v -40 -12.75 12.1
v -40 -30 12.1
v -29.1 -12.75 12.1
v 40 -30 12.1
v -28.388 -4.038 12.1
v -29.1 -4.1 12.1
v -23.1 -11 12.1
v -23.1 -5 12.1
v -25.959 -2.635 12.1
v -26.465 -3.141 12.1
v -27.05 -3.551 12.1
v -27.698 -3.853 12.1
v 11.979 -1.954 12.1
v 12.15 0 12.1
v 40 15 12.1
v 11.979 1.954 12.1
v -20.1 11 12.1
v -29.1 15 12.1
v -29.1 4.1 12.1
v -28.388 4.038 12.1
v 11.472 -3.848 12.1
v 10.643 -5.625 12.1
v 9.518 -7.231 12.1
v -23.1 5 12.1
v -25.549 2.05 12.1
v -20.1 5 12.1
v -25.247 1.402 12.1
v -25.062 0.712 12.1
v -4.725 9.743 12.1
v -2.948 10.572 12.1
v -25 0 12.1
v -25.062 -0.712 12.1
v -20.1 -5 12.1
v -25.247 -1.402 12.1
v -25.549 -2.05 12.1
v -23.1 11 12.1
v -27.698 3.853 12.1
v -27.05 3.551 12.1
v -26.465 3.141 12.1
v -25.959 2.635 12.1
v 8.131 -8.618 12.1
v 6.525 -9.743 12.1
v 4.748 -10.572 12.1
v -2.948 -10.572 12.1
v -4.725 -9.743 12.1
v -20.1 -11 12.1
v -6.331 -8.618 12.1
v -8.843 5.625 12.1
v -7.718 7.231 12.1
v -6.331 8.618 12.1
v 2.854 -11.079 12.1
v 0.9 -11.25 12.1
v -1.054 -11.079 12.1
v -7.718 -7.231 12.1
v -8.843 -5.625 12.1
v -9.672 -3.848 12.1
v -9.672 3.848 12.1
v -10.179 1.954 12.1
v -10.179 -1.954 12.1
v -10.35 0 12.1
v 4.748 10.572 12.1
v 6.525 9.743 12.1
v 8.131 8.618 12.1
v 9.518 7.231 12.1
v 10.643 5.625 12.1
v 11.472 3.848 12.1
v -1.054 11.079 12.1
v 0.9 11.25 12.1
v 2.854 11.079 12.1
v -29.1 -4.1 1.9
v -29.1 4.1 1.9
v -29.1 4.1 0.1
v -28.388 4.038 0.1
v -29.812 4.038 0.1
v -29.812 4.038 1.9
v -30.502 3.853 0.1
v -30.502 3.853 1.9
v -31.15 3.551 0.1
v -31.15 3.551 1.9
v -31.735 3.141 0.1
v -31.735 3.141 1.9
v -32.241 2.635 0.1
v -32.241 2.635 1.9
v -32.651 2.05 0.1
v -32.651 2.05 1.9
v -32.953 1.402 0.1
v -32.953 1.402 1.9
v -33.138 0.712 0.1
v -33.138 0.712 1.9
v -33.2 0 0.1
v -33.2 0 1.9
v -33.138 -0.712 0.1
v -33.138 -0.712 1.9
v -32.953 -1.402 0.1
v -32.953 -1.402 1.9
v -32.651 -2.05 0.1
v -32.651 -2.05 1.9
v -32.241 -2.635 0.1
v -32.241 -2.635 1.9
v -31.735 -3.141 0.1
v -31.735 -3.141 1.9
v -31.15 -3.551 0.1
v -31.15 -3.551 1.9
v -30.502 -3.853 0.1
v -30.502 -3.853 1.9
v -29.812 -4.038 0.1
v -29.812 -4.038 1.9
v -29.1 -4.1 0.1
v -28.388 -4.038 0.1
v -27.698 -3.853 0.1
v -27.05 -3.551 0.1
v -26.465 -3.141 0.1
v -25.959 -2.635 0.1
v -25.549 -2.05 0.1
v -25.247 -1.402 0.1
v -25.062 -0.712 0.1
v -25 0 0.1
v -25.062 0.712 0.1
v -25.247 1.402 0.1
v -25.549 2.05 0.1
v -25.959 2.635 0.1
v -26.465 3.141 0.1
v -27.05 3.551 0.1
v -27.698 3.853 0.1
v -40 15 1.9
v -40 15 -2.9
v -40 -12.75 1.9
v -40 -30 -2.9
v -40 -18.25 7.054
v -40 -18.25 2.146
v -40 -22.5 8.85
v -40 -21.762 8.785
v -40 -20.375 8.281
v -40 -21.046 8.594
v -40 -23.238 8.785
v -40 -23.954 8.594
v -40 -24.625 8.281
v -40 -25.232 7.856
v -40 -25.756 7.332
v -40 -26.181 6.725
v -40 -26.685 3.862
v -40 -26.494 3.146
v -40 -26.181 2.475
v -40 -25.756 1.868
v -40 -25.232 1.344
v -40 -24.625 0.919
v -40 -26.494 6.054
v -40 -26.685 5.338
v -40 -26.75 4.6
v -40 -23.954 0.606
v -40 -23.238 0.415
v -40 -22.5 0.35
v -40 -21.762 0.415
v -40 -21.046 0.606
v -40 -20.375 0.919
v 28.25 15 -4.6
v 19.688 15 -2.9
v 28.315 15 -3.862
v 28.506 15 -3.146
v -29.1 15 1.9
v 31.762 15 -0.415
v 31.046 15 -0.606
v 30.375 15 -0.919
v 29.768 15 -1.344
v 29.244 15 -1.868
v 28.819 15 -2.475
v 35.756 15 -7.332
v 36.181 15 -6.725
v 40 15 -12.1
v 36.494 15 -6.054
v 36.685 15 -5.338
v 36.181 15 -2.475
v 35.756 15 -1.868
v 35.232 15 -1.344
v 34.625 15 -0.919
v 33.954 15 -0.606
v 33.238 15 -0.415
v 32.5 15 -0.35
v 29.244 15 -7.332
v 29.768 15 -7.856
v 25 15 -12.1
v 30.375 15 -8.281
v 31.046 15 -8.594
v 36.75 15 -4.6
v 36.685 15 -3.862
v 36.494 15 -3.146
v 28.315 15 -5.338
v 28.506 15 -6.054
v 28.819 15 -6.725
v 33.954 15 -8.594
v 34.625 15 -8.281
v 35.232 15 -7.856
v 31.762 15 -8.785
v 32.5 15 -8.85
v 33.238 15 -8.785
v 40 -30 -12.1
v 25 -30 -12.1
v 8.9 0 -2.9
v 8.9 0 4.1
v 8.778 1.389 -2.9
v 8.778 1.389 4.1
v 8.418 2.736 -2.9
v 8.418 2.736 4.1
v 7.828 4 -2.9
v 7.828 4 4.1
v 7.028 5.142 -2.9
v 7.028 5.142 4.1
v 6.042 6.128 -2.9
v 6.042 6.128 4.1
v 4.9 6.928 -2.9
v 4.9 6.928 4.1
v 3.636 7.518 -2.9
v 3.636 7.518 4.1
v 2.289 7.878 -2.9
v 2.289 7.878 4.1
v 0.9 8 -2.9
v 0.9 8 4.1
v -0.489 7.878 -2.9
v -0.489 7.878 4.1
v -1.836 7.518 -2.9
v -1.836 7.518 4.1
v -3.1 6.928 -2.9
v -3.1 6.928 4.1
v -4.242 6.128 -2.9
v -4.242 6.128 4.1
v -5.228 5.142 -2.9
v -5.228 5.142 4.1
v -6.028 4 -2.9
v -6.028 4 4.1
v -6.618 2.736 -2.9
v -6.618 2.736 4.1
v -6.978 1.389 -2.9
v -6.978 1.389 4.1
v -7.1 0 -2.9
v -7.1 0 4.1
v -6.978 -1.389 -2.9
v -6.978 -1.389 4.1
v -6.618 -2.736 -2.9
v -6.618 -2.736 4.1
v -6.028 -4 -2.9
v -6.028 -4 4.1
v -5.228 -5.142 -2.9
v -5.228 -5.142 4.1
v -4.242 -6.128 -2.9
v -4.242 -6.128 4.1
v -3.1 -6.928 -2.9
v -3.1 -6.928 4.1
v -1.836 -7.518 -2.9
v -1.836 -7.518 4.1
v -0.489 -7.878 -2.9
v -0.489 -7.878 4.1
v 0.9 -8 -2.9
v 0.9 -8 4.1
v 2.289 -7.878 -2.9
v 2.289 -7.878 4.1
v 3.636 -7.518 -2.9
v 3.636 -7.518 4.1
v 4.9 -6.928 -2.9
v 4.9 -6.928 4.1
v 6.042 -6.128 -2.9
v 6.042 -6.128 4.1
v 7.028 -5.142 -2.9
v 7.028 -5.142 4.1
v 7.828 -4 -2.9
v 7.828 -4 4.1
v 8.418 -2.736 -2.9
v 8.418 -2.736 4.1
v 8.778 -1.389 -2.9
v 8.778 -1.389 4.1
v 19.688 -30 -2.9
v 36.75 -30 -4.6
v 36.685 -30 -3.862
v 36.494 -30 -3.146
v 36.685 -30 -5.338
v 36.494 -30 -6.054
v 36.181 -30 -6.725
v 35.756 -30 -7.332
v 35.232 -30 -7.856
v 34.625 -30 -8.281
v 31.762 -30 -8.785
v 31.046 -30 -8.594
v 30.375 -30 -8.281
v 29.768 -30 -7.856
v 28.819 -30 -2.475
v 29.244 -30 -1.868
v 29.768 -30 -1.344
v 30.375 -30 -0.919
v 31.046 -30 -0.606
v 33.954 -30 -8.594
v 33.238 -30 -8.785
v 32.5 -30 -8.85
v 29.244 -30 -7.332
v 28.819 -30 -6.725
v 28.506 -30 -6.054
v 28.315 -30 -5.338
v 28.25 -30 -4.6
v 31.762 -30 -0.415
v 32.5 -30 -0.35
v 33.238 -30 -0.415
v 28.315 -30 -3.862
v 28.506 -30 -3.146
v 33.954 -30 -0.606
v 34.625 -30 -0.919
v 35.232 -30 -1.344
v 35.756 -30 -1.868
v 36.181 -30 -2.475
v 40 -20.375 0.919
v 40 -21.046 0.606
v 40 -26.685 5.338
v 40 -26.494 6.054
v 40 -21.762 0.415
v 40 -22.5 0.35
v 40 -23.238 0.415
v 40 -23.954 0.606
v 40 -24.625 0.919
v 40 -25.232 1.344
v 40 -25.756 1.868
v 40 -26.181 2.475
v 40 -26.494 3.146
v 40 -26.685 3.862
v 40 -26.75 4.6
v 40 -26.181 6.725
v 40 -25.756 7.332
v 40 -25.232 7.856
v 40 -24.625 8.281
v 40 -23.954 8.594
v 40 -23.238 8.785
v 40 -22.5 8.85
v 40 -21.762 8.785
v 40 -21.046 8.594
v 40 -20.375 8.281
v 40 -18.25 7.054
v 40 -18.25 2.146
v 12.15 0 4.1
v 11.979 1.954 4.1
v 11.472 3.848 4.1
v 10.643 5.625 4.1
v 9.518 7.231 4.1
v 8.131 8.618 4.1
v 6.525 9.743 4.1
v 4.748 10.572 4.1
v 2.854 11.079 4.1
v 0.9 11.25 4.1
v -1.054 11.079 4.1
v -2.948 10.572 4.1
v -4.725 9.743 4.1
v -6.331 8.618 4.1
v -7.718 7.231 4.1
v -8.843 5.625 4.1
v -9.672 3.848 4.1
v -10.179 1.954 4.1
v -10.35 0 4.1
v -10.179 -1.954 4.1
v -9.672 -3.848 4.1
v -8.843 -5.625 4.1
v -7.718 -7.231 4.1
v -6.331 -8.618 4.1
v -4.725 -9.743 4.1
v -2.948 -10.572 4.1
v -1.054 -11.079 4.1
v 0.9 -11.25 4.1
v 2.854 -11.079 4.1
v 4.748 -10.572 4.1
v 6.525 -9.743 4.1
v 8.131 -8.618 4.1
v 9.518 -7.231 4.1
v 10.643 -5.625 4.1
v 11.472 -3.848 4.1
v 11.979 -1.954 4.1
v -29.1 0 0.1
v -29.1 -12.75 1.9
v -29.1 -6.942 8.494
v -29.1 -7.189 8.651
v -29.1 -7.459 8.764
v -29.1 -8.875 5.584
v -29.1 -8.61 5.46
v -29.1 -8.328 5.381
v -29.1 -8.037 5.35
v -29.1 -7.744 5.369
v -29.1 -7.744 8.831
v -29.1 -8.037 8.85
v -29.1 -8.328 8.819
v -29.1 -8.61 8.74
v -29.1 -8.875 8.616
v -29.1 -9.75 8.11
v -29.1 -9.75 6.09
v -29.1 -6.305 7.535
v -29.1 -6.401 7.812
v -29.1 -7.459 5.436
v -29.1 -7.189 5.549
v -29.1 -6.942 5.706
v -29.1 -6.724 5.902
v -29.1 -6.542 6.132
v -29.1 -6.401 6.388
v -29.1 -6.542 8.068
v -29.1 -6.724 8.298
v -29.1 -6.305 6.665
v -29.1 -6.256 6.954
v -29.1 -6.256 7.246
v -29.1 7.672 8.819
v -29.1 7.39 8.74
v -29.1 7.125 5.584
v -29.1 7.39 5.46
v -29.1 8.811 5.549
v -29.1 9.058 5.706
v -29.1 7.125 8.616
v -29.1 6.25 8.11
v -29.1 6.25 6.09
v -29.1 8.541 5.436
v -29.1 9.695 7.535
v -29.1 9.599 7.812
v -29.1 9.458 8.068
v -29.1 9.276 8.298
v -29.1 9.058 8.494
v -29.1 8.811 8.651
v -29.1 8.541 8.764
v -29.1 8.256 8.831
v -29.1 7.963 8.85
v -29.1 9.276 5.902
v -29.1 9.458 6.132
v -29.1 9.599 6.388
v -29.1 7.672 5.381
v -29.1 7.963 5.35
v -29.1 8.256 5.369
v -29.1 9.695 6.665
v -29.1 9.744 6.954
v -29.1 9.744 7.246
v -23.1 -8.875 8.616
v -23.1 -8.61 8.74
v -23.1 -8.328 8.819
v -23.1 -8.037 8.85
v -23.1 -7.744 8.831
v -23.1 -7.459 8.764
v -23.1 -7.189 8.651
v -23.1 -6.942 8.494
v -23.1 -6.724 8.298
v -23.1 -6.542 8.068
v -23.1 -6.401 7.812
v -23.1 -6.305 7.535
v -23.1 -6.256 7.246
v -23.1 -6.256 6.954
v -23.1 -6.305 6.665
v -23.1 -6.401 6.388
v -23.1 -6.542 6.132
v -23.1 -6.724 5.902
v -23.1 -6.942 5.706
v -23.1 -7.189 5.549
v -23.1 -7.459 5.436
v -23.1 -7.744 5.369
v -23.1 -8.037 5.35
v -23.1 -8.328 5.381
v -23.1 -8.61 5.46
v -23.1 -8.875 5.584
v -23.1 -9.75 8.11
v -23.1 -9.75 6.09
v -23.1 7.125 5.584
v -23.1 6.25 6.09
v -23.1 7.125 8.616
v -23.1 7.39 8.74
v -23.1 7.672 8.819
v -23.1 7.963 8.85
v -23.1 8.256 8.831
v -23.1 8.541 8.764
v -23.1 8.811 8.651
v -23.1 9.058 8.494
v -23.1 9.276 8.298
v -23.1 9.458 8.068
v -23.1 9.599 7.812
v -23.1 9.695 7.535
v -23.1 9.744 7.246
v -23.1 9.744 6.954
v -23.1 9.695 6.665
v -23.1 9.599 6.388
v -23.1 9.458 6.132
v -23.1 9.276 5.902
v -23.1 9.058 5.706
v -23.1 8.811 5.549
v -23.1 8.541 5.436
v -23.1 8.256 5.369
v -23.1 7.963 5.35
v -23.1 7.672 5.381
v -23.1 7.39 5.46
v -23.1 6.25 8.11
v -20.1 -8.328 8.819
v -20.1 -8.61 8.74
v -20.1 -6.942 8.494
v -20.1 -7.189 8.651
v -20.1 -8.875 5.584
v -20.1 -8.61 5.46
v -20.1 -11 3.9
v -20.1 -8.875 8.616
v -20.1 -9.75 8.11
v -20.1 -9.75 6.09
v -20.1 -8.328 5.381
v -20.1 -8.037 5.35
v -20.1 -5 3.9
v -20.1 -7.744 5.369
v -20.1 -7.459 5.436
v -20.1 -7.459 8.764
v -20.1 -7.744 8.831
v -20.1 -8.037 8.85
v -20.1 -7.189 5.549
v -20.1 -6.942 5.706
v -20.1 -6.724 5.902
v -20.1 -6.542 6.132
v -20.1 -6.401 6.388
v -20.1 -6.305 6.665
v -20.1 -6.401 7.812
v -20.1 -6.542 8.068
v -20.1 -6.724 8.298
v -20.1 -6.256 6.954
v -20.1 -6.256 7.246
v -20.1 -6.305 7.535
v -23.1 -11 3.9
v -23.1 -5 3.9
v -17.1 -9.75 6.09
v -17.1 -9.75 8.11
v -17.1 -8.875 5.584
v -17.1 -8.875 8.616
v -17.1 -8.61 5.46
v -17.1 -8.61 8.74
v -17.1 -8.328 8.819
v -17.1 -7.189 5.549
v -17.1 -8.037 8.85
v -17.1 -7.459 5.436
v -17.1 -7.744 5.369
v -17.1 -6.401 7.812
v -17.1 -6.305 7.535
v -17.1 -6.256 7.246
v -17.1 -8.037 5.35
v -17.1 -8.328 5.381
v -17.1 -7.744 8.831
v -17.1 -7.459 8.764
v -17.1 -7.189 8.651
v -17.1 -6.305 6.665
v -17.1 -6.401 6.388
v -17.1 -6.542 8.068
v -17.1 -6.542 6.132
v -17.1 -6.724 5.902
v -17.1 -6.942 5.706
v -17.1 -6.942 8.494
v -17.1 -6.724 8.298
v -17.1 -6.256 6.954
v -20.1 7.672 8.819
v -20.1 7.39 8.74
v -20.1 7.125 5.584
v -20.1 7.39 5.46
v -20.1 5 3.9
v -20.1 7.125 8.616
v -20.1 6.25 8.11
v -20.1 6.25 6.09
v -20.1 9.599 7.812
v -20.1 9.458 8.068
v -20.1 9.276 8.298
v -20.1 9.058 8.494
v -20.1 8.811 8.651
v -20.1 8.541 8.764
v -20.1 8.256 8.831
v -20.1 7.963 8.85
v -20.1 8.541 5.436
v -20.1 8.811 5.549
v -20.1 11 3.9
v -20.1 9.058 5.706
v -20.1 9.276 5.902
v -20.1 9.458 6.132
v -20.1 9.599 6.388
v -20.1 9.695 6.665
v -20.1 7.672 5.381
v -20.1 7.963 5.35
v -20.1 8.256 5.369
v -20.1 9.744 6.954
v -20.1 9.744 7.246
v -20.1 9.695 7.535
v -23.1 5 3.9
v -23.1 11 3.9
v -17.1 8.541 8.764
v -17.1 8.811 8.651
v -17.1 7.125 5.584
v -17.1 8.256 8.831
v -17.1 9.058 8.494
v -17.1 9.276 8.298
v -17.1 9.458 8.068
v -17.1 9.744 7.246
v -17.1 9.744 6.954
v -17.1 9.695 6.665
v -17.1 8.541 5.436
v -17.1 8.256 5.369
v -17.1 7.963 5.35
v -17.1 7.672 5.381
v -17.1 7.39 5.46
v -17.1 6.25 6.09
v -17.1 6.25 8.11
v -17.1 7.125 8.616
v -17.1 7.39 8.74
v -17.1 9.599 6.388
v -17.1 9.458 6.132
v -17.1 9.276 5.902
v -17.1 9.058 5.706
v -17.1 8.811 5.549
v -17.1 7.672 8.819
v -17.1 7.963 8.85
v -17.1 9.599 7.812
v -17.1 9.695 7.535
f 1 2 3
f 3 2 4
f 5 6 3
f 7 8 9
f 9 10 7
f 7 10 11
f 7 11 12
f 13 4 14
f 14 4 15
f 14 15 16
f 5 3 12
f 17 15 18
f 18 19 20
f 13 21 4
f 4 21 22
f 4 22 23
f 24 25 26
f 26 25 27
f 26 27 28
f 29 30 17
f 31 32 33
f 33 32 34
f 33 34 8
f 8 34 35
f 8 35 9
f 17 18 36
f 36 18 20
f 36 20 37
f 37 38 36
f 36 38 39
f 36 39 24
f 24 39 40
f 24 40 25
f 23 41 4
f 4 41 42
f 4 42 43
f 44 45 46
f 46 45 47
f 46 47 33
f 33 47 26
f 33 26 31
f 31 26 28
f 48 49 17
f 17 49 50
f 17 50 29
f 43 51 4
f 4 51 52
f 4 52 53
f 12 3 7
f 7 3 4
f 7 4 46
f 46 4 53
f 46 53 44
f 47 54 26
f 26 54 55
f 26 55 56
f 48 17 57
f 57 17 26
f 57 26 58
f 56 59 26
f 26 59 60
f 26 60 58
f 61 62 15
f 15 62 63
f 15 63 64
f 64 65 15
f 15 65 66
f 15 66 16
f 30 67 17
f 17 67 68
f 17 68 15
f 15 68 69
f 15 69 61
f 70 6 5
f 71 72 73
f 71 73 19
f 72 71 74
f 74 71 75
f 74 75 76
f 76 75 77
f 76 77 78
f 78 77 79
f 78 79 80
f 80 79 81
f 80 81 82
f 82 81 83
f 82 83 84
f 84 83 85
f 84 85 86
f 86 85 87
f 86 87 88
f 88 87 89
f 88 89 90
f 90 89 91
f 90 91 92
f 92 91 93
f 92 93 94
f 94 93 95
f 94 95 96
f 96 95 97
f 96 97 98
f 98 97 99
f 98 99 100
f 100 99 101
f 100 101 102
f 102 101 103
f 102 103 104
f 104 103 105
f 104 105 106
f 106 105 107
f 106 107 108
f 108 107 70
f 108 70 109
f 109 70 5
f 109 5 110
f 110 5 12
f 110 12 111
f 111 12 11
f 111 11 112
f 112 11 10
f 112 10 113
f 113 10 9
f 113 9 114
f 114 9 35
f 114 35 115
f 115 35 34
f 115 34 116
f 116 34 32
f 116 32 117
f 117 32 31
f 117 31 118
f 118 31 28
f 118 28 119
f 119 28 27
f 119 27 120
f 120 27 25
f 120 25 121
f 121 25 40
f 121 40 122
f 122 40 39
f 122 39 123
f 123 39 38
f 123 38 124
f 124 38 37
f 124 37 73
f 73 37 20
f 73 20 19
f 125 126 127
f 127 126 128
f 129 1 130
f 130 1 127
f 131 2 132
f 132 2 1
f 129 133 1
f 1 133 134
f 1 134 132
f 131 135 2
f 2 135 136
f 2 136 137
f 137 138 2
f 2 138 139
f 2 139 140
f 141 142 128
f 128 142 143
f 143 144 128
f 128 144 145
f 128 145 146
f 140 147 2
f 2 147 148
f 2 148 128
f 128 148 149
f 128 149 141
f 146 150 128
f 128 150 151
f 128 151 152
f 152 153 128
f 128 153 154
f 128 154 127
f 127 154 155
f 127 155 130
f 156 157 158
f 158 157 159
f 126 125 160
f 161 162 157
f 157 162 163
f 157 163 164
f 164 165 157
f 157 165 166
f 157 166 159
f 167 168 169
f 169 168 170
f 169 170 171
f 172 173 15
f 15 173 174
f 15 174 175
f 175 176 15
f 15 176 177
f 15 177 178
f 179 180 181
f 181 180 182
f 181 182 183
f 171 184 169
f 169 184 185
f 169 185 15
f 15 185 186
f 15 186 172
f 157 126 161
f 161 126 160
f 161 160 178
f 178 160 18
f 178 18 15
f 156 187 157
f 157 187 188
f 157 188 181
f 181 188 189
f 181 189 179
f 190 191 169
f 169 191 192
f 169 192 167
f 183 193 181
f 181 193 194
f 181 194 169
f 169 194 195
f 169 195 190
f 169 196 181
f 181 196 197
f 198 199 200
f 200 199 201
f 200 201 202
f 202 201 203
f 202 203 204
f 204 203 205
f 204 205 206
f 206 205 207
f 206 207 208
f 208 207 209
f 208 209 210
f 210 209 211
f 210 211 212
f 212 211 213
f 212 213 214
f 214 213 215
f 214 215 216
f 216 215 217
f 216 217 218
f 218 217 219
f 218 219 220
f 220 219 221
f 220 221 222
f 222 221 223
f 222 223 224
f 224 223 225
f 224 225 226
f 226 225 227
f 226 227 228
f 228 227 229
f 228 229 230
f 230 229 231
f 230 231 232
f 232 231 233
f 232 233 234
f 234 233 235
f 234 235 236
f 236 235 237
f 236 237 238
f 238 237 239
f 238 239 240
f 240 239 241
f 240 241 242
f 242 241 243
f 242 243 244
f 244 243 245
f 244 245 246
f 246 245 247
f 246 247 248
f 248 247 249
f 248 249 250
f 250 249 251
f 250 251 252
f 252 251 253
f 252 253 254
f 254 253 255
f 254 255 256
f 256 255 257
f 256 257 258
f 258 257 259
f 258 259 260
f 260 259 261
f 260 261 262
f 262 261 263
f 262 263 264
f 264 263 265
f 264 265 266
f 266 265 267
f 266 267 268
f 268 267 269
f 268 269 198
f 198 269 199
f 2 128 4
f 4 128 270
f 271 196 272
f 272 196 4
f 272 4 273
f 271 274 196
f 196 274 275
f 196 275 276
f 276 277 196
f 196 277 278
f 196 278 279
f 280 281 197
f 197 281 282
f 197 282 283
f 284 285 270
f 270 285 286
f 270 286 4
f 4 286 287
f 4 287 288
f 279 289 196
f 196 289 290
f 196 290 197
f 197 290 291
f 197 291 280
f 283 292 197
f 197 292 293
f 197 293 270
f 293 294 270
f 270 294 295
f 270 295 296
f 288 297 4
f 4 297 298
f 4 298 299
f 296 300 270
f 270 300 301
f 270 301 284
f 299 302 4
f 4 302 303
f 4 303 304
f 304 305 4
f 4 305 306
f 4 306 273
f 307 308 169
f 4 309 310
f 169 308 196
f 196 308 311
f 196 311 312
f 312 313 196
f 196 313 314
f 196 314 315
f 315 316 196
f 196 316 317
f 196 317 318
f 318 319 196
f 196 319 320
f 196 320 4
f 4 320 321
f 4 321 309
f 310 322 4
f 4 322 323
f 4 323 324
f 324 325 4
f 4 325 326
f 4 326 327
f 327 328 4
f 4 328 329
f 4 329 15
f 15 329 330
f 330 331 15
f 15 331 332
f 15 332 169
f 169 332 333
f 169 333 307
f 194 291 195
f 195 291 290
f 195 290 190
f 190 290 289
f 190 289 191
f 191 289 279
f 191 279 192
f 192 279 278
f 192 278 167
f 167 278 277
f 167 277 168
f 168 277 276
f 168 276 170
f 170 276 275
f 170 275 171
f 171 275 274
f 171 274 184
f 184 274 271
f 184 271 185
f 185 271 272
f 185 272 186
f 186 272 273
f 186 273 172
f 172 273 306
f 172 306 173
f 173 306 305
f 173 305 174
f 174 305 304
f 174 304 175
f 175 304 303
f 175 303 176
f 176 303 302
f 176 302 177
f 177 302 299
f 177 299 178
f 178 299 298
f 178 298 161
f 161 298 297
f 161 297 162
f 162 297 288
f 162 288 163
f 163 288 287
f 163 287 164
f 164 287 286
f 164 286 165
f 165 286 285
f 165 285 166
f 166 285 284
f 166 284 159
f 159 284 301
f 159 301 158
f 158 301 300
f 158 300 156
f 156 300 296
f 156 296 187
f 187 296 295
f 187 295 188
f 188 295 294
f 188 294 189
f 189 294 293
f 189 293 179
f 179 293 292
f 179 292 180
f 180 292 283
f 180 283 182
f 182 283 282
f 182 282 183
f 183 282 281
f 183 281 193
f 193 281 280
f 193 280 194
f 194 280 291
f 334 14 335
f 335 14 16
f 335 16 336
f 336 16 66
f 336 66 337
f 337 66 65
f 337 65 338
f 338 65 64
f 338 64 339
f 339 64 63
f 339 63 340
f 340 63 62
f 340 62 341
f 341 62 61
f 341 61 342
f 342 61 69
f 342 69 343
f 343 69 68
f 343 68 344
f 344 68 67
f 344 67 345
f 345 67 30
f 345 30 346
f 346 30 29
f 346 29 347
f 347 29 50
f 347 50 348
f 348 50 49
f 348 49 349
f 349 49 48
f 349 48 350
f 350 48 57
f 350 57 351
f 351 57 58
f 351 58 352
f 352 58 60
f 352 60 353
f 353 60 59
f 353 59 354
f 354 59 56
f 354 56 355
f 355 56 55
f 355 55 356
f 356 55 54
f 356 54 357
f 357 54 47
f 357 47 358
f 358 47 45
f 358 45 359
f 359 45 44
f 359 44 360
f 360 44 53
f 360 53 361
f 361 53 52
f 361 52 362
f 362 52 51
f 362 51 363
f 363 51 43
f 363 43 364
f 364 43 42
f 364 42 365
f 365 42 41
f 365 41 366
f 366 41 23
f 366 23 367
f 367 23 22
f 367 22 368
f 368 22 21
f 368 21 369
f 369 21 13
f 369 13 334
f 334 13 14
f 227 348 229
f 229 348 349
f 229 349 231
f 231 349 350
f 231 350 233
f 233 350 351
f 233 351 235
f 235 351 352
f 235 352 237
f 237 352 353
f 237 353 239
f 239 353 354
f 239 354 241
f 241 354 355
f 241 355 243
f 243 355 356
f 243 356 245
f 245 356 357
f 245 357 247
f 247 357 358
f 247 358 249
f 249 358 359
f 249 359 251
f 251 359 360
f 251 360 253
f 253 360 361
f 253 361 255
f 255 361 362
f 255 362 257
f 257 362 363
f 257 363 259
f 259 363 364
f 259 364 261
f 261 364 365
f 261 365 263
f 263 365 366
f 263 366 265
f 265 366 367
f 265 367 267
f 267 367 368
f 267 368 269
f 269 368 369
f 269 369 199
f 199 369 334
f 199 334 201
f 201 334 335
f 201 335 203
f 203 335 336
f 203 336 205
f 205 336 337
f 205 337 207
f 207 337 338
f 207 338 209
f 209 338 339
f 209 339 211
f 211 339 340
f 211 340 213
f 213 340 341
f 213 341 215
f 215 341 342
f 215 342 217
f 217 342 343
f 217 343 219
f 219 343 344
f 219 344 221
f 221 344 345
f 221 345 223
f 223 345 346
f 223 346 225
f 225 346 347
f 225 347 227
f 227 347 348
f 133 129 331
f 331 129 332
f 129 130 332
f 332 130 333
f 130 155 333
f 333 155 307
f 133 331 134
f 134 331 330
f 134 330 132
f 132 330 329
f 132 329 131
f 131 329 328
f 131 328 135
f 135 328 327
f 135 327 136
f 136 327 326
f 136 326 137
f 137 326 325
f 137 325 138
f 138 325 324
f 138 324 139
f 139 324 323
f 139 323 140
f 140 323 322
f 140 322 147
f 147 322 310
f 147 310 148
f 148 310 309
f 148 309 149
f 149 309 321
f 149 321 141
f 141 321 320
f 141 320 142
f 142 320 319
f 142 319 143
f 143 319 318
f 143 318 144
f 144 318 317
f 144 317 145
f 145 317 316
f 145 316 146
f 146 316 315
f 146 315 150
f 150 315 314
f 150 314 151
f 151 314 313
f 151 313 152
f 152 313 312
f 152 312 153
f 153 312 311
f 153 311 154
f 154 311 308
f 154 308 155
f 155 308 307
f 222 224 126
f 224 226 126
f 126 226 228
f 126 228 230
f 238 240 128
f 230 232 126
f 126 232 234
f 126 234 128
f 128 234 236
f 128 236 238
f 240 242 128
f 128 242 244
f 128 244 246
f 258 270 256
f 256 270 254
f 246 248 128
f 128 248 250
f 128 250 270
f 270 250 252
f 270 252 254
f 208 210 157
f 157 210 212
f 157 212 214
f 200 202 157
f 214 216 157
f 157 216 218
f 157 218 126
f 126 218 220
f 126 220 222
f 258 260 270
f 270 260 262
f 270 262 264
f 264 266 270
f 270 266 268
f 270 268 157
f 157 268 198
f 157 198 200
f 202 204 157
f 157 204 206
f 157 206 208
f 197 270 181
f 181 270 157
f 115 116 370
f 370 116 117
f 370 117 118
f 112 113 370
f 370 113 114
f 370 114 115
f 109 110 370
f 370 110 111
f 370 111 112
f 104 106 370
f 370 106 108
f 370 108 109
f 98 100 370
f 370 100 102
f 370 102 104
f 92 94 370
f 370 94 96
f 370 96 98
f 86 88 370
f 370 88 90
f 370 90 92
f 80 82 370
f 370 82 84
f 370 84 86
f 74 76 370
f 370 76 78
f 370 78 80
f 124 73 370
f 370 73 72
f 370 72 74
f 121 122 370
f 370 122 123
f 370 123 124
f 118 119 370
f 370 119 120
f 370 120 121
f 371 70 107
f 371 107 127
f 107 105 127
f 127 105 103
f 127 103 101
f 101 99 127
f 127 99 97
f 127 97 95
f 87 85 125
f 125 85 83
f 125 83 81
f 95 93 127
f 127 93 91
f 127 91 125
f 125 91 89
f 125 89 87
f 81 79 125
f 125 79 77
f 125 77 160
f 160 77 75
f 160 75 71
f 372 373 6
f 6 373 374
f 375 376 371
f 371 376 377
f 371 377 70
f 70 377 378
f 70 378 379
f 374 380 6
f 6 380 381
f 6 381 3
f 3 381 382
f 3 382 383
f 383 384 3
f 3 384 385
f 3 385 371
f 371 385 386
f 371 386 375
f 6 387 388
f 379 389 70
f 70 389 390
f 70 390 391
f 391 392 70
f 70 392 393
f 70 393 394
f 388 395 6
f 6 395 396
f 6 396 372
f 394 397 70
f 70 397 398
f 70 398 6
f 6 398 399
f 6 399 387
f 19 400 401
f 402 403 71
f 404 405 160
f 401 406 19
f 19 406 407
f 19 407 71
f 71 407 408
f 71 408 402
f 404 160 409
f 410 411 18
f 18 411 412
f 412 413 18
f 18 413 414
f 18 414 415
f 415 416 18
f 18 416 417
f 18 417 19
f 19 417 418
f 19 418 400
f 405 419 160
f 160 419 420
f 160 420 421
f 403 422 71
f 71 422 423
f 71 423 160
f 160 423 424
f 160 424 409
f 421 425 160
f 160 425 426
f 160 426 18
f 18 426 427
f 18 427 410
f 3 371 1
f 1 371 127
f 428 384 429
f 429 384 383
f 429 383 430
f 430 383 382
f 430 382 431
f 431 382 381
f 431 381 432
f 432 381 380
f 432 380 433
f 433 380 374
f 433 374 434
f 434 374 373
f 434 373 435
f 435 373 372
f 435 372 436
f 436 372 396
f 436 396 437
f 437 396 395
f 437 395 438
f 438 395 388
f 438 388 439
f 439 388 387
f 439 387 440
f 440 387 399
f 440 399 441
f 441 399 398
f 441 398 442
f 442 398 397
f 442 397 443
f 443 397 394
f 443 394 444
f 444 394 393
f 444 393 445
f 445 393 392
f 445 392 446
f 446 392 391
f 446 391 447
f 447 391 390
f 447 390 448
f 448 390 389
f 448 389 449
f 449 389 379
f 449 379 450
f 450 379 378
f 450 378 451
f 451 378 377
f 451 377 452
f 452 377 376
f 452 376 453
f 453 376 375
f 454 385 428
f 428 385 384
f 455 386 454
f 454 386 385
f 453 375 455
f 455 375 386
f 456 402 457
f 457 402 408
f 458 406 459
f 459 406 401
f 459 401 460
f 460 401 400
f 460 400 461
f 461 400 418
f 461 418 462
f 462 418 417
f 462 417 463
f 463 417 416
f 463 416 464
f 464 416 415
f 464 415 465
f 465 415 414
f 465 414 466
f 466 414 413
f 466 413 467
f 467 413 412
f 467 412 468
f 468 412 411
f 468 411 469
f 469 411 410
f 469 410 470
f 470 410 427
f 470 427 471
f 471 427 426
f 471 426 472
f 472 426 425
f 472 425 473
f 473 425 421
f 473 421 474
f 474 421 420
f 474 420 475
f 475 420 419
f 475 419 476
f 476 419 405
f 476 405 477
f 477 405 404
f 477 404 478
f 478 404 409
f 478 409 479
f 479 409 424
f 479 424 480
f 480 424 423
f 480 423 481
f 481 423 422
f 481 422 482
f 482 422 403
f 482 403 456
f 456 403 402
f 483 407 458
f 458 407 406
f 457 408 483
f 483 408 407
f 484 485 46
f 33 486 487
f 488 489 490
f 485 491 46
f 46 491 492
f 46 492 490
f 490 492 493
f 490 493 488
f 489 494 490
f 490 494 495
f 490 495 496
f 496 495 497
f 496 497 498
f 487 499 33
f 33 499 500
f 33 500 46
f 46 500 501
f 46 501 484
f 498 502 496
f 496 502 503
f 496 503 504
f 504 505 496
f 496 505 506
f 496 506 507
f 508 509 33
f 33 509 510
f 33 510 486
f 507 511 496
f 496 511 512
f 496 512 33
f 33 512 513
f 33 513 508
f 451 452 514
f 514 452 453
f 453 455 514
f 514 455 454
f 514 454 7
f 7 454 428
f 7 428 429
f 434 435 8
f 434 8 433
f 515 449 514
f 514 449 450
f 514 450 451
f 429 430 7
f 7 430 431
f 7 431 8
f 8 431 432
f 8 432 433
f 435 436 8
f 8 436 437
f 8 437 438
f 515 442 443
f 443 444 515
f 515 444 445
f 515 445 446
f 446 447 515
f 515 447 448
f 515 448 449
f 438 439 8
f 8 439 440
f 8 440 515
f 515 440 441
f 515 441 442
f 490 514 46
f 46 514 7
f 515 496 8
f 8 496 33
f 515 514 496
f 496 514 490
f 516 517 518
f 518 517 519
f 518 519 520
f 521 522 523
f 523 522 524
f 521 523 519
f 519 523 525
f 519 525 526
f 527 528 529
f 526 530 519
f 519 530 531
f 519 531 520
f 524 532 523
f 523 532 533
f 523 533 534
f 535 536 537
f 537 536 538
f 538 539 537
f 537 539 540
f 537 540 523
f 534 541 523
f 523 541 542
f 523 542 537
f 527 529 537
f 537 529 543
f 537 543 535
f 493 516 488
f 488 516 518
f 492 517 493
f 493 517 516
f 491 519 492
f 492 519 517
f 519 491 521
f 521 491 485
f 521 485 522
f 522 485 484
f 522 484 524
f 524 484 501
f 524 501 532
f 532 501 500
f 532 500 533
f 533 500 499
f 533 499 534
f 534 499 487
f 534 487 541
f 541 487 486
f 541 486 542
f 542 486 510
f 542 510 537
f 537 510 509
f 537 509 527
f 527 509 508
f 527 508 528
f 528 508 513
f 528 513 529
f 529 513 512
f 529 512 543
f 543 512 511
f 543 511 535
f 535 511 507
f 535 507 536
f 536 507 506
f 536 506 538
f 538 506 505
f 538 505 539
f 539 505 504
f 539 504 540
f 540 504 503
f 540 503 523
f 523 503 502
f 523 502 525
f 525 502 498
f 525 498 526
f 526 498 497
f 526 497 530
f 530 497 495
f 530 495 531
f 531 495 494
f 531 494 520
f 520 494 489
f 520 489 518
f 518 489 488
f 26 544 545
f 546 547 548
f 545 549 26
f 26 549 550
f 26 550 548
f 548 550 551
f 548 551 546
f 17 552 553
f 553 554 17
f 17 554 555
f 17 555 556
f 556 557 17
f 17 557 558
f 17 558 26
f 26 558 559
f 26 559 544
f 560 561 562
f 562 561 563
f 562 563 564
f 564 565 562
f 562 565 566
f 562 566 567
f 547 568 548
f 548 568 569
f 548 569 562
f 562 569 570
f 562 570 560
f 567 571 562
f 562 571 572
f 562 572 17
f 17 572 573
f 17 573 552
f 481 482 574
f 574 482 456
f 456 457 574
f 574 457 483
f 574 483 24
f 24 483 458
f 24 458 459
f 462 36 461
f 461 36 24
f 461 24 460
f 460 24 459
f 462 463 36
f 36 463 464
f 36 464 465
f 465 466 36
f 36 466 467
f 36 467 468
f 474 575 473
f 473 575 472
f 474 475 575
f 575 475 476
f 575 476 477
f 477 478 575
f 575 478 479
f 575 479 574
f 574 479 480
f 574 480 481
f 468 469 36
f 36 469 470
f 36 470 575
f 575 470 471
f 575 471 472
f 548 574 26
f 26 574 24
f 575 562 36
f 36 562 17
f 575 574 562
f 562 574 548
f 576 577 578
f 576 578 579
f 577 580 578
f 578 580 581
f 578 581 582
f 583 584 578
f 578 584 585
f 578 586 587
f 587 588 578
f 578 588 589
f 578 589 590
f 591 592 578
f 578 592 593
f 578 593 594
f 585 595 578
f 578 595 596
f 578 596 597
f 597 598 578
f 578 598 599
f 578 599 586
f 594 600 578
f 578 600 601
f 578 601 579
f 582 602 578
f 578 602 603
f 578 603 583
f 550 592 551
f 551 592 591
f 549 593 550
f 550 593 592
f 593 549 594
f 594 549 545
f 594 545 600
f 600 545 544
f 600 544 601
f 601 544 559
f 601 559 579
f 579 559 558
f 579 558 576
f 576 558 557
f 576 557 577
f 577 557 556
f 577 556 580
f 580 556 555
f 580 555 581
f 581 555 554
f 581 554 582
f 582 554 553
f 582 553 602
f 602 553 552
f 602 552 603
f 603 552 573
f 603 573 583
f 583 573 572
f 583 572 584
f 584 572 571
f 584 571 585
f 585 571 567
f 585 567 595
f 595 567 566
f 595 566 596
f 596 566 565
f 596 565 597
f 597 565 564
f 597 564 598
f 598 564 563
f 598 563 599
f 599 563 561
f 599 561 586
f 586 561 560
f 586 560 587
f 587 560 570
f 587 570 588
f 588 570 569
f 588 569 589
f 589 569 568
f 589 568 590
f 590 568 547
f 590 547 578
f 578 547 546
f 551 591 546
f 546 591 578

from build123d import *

# Parameters (mm, degrees)
SCHIZZO2_W                   = 80
SCHIZZO2_H                   = 30
ESTRUSIONE_ESTRUSIONE1_DEPTH = 12.1
SCHIZZO3_R                   = 4.25
TAGLIO_ESTRUSIONE1_DEPTH     = 52.443269725
SCHIZZO4_R                   = 11.25
TAGLIO_ESTRUSIONE2_DEPTH     = 8
SCHIZZO5_R                   = 8
TAGLIO_ESTRUSIONE3_DEPTH     = 46.688510591
ESTRUSIONE_ESTRUSIONE2_START = -15
SCHIZZO6_W                   = 80
SCHIZZO6_H                   = 24.2
SCHIZZO6_R                   = 4.25
ESTRUSIONE_ESTRUSIONE2_DEPTH = 15
TAGLIO_ESTRUSIONE4_DEPTH     = 87.292583691
TAGLIO_ESTRUSIONE5_DEPTH     = 62.411806682
SCHIZZO8_R                   = 4.1
TAGLIO_ESTRUSIONE6_DEPTH     = 12
SCHIZZO10_W                  = 10.2
SCHIZZO10_H                  = 27.75
TAGLIO_ESTRUSIONE7_DEPTH     = 10.9
TAGLIO_ESTRUSIONE8_DEPTH     = 12
SCHIZZO12_W                  = 3
SCHIZZO12_H                  = 6
TAGLIO_ESTRUSIONE9_DEPTH     = 8.2


with BuildPart() as part:
    # Schizzo2 → Estrusione-Estrusione1 (new, symmetric)
    with BuildSketch(Plane.XY):
        Rectangle(SCHIZZO2_W, SCHIZZO2_H)
    extrude(amount=ESTRUSIONE_ESTRUSIONE1_DEPTH, both=True)

    # Schizzo3 → Taglio-Estrusione1 (cut, through all)
    with BuildSketch(Plane.XZ.offset(15)):
        with Locations(Location((32.5, -4.6, 0), (0, 0, 270))):
            Circle(SCHIZZO3_R)
    extrude(amount=-TAGLIO_ESTRUSIONE1_DEPTH, mode=Mode.SUBTRACT)

    # Schizzo4 → Taglio-Estrusione2 (cut)
    with BuildSketch(Plane.XY.offset(12.1)):
        with Locations((0.9, 0)):
            Circle(SCHIZZO4_R)
    extrude(amount=-TAGLIO_ESTRUSIONE2_DEPTH, mode=Mode.SUBTRACT)

    # Schizzo5 → Taglio-Estrusione3 (cut, through all)
    with BuildSketch(Plane.XY.offset(4.1)):
        with Locations((0.9, 0)):
            Circle(SCHIZZO5_R)
    extrude(amount=-TAGLIO_ESTRUSIONE3_DEPTH, mode=Mode.SUBTRACT)

    # Schizzo6 → Estrusione-Estrusione2 (add)
    with BuildSketch(Plane(origin=(0, -15, 0), x_dir=(1, 0, 0), z_dir=(0, 1, 0)).offset(ESTRUSIONE_ESTRUSIONE2_START)):
        Rectangle(SCHIZZO6_W, SCHIZZO6_H)
        with Locations(Location((32.5, 4.6, 0), (0, 0, 90))):
            Circle(SCHIZZO6_R, mode=Mode.SUBTRACT)
    extrude(amount=ESTRUSIONE_ESTRUSIONE2_DEPTH)

    # Schizzo7 → Taglio-Estrusione4 (cut, through all)
    with BuildSketch(Plane(origin=(40, 0, 0), x_dir=(0, 0, -1), z_dir=(1, 0, 0))):
        with BuildLine():
            Line((-2.146261356, -18.25), (-7.053738644, -18.25))
            Line((-7.053738644, -18.25), (-8.280607966, -20.375))
            ThreePointArc((-8.280607966, -20.375), (-4.6, -26.75), (-0.919392034, -20.375))
            Line((-0.919392034, -20.375), (-2.146261356, -18.25))
        make_face()
    extrude(amount=-TAGLIO_ESTRUSIONE4_DEPTH, mode=Mode.SUBTRACT)

    # Schizzo9 → Taglio-Estrusione5 (cut, through all)
    with BuildSketch(Plane.XZ.offset(-15)):
        Polygon((25, -12.1), (19.688377523, -2.9), (-40, -2.9), (-40, -12.1), align=None)
    extrude(amount=TAGLIO_ESTRUSIONE5_DEPTH, mode=Mode.SUBTRACT)

    # Schizzo8 → Taglio-Estrusione6 (cut)
    with BuildSketch(Plane.XY.offset(12.1)):
        with Locations((-29.1, 0)):
            Circle(SCHIZZO8_R)
    extrude(amount=-TAGLIO_ESTRUSIONE6_DEPTH, mode=Mode.SUBTRACT)

    # Schizzo10 → Taglio-Estrusione7 (cut)
    with BuildSketch(Plane.ZY.offset(40)):
        with Locations((7, 1.125)):
            Rectangle(SCHIZZO10_W, SCHIZZO10_H)
    extrude(amount=-TAGLIO_ESTRUSIONE7_DEPTH, mode=Mode.SUBTRACT)

    # Schizzo11 → Taglio-Estrusione8 (cut)
    with BuildSketch(Plane.ZY.offset(29.1)):
        with BuildLine():
            Line((8.110362971, 6.25), (6.089637029, 6.25))
            Line((6.089637029, 6.25), (5.584455543, 7.125))
            ThreePointArc((5.584455543, 7.125), (7.1, 9.75), (8.615544457, 7.125))
            Line((8.615544457, 7.125), (8.110362971, 6.25))
        make_face()
        with BuildLine():
            Line((8.110362971, -9.75), (6.089637029, -9.75))
            Line((6.089637029, -9.75), (5.584455543, -8.875))
            ThreePointArc((5.584455543, -8.875), (7.1, -6.25), (8.615544457, -8.875))
            Line((8.615544457, -8.875), (8.110362971, -9.75))
        make_face()
    extrude(amount=-TAGLIO_ESTRUSIONE8_DEPTH, mode=Mode.SUBTRACT)

    # Schizzo12 → Taglio-Estrusione9 (cut)
    with BuildSketch(Plane.XY.offset(12.1)):
        with Locations((-21.6, -8)):
            Rectangle(SCHIZZO12_W, SCHIZZO12_H)
        with Locations((-21.6, 8)):
            Rectangle(SCHIZZO12_W, SCHIZZO12_H)
    extrude(amount=-TAGLIO_ESTRUSIONE9_DEPTH, mode=Mode.SUBTRACT)


solid = part.part
